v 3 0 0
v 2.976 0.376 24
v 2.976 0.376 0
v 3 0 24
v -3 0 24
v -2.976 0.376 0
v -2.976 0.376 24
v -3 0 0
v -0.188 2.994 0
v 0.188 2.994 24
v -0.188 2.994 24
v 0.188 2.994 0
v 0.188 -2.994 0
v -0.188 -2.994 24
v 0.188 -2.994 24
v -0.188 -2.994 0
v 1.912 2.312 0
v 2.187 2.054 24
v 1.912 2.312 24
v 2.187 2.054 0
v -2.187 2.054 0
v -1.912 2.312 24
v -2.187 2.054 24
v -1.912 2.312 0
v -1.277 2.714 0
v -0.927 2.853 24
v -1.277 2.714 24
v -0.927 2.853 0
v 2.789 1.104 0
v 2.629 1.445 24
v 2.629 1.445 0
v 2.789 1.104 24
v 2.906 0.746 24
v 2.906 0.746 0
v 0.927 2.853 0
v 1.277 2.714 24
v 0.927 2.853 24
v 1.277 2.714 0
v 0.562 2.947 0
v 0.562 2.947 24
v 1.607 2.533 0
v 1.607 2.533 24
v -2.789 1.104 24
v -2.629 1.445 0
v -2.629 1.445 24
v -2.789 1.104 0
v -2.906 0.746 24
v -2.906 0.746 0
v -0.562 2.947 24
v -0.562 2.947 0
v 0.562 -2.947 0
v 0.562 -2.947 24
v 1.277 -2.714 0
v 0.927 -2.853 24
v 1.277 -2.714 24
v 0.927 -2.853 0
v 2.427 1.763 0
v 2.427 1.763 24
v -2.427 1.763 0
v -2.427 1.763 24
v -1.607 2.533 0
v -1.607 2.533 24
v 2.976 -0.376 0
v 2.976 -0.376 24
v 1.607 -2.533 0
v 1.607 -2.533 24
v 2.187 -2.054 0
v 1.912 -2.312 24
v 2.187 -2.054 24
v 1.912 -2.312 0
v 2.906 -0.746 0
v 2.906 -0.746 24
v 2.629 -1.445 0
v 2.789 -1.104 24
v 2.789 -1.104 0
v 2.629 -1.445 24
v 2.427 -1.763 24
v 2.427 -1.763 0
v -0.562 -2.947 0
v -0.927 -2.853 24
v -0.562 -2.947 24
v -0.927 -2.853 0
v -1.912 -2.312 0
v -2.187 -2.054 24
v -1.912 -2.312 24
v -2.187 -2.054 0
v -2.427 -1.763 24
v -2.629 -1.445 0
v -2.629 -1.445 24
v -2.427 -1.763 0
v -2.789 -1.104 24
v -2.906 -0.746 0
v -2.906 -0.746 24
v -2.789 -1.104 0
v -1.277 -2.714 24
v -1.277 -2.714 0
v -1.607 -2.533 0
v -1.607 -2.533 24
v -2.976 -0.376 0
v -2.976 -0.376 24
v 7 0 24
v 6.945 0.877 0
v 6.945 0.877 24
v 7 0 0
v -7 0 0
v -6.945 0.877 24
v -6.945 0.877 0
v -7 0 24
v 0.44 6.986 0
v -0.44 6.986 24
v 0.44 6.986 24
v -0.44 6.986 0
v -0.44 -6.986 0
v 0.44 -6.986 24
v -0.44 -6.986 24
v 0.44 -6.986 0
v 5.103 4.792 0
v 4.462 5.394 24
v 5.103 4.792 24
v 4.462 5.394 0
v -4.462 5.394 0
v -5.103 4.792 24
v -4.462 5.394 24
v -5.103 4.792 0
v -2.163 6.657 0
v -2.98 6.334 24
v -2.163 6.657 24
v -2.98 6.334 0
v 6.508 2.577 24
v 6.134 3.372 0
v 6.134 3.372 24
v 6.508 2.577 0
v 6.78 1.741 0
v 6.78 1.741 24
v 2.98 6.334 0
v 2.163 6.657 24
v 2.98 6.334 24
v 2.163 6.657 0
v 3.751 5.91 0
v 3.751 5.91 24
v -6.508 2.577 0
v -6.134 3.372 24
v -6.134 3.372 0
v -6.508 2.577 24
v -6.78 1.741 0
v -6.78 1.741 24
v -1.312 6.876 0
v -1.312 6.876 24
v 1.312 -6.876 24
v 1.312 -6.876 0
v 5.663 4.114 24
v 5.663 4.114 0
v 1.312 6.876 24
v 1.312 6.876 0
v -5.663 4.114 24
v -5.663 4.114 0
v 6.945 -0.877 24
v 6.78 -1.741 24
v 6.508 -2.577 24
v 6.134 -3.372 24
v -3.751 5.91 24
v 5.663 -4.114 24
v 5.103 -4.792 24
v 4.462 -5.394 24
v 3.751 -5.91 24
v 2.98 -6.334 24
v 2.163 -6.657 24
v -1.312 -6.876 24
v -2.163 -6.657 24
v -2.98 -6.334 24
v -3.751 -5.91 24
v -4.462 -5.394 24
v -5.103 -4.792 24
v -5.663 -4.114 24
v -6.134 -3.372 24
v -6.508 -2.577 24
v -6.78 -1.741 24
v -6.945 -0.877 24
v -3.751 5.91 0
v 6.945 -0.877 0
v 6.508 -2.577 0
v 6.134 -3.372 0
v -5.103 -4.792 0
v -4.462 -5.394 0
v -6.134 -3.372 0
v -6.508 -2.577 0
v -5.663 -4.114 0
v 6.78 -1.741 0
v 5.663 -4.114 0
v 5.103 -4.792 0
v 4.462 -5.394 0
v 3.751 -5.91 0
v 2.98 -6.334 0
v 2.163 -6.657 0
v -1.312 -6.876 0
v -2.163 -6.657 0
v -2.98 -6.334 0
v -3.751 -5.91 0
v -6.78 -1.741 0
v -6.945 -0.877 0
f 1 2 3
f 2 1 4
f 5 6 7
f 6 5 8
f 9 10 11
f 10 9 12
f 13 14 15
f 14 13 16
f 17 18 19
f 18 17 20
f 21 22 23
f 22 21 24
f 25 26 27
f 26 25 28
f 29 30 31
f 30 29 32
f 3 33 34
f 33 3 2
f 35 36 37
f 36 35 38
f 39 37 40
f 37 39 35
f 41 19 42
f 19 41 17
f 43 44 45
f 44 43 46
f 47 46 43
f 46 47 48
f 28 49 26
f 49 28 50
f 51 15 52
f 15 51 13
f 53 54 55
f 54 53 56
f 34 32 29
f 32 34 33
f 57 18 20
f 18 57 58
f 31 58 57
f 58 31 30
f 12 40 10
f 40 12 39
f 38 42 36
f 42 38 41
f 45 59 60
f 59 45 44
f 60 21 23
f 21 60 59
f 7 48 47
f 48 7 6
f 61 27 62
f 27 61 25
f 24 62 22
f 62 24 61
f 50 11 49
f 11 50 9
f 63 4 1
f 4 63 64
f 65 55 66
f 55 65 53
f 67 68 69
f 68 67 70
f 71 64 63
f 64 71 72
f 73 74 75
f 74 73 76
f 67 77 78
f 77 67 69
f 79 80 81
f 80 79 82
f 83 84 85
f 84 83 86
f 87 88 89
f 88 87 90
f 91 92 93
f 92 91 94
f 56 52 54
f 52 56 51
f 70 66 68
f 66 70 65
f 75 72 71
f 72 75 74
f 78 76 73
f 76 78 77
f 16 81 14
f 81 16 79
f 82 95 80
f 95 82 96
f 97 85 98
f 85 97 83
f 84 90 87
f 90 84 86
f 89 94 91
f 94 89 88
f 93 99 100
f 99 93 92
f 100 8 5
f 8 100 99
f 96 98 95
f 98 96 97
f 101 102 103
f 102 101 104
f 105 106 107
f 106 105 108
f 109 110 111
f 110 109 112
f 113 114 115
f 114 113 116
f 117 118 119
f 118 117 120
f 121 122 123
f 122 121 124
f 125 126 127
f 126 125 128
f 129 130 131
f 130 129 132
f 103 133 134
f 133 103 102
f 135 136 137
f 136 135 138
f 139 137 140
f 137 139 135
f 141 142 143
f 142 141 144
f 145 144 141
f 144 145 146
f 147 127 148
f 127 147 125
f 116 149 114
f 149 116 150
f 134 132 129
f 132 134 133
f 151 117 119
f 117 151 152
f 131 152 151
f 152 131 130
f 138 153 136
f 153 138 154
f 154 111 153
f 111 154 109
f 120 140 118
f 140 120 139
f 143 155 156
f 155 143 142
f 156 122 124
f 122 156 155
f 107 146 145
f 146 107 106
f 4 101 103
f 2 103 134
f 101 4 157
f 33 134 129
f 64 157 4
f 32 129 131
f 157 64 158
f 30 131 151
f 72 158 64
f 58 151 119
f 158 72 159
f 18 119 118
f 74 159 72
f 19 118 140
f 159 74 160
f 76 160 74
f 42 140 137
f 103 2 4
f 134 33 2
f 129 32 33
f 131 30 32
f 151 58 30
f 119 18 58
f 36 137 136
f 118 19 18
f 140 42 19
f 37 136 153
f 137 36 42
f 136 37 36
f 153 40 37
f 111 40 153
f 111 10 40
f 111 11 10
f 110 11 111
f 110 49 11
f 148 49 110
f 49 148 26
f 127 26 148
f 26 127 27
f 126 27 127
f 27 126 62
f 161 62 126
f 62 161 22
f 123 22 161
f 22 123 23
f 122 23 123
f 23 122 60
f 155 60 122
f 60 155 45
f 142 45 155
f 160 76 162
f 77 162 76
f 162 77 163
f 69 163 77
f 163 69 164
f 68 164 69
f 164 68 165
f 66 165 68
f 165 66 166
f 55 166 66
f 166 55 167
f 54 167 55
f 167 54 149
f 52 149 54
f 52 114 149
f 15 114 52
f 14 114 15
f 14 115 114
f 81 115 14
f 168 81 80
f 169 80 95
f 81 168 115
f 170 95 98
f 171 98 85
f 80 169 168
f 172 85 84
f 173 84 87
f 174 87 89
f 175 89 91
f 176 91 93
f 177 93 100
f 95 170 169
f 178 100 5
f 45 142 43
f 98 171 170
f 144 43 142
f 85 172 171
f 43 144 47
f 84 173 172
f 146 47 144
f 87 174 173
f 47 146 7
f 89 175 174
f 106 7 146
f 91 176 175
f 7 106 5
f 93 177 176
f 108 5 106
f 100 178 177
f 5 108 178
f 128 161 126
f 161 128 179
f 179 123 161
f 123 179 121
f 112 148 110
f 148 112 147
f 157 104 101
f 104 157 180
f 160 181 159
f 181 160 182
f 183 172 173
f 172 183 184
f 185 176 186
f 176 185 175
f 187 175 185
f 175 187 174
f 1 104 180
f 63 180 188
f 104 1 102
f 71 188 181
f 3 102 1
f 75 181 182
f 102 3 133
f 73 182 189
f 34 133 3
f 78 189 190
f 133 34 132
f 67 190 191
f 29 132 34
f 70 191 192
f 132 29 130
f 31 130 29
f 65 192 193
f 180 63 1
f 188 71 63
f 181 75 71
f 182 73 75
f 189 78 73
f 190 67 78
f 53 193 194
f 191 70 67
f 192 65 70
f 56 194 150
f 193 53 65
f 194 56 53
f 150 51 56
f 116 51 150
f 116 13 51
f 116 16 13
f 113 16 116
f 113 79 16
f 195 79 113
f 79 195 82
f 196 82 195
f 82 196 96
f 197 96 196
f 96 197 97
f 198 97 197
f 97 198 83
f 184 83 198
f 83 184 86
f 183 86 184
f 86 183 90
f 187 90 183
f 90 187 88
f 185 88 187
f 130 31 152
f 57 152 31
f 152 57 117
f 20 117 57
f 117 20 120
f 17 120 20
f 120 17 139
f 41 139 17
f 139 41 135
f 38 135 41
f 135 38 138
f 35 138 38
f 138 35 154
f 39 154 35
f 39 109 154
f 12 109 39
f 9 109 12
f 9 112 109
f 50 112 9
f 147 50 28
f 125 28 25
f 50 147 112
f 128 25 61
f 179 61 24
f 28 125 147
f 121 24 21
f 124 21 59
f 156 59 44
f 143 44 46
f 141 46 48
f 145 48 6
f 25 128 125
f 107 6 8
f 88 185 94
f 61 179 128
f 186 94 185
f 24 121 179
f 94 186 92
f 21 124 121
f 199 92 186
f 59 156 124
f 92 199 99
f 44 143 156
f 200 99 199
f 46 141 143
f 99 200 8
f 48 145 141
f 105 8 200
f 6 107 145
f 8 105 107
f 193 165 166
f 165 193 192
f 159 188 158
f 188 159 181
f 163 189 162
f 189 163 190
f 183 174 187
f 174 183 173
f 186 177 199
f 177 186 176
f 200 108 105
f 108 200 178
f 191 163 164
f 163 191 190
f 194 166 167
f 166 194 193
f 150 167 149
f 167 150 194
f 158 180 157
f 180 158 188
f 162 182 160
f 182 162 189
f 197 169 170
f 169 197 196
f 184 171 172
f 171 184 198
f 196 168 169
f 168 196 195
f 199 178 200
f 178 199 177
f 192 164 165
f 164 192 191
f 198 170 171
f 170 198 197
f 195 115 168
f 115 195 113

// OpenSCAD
$fn = 50;


difference() {
	union() {
		cylinder(h = 24, r = 7.0000000000);
	}
	union() {
		translate(v = [0.0000000000, 0.0000000000, -100.0000000000]) {
			cylinder(h = 200, r = 3.0000000000);
		}
		translate(v = [0.0000000000, 0.0000000000, -100.0000000000]) {
			cylinder(h = 200, r = 3.0000000000);
		}
		translate(v = [0.0000000000, 0.0000000000, -100.0000000000]) {
			cylinder(h = 200, r = 3.0000000000);
		}
		translate(v = [0.0000000000, 0.0000000000, -100.0000000000]) {
			cylinder(h = 200, r = 3.0000000000);
		}
	}
}
